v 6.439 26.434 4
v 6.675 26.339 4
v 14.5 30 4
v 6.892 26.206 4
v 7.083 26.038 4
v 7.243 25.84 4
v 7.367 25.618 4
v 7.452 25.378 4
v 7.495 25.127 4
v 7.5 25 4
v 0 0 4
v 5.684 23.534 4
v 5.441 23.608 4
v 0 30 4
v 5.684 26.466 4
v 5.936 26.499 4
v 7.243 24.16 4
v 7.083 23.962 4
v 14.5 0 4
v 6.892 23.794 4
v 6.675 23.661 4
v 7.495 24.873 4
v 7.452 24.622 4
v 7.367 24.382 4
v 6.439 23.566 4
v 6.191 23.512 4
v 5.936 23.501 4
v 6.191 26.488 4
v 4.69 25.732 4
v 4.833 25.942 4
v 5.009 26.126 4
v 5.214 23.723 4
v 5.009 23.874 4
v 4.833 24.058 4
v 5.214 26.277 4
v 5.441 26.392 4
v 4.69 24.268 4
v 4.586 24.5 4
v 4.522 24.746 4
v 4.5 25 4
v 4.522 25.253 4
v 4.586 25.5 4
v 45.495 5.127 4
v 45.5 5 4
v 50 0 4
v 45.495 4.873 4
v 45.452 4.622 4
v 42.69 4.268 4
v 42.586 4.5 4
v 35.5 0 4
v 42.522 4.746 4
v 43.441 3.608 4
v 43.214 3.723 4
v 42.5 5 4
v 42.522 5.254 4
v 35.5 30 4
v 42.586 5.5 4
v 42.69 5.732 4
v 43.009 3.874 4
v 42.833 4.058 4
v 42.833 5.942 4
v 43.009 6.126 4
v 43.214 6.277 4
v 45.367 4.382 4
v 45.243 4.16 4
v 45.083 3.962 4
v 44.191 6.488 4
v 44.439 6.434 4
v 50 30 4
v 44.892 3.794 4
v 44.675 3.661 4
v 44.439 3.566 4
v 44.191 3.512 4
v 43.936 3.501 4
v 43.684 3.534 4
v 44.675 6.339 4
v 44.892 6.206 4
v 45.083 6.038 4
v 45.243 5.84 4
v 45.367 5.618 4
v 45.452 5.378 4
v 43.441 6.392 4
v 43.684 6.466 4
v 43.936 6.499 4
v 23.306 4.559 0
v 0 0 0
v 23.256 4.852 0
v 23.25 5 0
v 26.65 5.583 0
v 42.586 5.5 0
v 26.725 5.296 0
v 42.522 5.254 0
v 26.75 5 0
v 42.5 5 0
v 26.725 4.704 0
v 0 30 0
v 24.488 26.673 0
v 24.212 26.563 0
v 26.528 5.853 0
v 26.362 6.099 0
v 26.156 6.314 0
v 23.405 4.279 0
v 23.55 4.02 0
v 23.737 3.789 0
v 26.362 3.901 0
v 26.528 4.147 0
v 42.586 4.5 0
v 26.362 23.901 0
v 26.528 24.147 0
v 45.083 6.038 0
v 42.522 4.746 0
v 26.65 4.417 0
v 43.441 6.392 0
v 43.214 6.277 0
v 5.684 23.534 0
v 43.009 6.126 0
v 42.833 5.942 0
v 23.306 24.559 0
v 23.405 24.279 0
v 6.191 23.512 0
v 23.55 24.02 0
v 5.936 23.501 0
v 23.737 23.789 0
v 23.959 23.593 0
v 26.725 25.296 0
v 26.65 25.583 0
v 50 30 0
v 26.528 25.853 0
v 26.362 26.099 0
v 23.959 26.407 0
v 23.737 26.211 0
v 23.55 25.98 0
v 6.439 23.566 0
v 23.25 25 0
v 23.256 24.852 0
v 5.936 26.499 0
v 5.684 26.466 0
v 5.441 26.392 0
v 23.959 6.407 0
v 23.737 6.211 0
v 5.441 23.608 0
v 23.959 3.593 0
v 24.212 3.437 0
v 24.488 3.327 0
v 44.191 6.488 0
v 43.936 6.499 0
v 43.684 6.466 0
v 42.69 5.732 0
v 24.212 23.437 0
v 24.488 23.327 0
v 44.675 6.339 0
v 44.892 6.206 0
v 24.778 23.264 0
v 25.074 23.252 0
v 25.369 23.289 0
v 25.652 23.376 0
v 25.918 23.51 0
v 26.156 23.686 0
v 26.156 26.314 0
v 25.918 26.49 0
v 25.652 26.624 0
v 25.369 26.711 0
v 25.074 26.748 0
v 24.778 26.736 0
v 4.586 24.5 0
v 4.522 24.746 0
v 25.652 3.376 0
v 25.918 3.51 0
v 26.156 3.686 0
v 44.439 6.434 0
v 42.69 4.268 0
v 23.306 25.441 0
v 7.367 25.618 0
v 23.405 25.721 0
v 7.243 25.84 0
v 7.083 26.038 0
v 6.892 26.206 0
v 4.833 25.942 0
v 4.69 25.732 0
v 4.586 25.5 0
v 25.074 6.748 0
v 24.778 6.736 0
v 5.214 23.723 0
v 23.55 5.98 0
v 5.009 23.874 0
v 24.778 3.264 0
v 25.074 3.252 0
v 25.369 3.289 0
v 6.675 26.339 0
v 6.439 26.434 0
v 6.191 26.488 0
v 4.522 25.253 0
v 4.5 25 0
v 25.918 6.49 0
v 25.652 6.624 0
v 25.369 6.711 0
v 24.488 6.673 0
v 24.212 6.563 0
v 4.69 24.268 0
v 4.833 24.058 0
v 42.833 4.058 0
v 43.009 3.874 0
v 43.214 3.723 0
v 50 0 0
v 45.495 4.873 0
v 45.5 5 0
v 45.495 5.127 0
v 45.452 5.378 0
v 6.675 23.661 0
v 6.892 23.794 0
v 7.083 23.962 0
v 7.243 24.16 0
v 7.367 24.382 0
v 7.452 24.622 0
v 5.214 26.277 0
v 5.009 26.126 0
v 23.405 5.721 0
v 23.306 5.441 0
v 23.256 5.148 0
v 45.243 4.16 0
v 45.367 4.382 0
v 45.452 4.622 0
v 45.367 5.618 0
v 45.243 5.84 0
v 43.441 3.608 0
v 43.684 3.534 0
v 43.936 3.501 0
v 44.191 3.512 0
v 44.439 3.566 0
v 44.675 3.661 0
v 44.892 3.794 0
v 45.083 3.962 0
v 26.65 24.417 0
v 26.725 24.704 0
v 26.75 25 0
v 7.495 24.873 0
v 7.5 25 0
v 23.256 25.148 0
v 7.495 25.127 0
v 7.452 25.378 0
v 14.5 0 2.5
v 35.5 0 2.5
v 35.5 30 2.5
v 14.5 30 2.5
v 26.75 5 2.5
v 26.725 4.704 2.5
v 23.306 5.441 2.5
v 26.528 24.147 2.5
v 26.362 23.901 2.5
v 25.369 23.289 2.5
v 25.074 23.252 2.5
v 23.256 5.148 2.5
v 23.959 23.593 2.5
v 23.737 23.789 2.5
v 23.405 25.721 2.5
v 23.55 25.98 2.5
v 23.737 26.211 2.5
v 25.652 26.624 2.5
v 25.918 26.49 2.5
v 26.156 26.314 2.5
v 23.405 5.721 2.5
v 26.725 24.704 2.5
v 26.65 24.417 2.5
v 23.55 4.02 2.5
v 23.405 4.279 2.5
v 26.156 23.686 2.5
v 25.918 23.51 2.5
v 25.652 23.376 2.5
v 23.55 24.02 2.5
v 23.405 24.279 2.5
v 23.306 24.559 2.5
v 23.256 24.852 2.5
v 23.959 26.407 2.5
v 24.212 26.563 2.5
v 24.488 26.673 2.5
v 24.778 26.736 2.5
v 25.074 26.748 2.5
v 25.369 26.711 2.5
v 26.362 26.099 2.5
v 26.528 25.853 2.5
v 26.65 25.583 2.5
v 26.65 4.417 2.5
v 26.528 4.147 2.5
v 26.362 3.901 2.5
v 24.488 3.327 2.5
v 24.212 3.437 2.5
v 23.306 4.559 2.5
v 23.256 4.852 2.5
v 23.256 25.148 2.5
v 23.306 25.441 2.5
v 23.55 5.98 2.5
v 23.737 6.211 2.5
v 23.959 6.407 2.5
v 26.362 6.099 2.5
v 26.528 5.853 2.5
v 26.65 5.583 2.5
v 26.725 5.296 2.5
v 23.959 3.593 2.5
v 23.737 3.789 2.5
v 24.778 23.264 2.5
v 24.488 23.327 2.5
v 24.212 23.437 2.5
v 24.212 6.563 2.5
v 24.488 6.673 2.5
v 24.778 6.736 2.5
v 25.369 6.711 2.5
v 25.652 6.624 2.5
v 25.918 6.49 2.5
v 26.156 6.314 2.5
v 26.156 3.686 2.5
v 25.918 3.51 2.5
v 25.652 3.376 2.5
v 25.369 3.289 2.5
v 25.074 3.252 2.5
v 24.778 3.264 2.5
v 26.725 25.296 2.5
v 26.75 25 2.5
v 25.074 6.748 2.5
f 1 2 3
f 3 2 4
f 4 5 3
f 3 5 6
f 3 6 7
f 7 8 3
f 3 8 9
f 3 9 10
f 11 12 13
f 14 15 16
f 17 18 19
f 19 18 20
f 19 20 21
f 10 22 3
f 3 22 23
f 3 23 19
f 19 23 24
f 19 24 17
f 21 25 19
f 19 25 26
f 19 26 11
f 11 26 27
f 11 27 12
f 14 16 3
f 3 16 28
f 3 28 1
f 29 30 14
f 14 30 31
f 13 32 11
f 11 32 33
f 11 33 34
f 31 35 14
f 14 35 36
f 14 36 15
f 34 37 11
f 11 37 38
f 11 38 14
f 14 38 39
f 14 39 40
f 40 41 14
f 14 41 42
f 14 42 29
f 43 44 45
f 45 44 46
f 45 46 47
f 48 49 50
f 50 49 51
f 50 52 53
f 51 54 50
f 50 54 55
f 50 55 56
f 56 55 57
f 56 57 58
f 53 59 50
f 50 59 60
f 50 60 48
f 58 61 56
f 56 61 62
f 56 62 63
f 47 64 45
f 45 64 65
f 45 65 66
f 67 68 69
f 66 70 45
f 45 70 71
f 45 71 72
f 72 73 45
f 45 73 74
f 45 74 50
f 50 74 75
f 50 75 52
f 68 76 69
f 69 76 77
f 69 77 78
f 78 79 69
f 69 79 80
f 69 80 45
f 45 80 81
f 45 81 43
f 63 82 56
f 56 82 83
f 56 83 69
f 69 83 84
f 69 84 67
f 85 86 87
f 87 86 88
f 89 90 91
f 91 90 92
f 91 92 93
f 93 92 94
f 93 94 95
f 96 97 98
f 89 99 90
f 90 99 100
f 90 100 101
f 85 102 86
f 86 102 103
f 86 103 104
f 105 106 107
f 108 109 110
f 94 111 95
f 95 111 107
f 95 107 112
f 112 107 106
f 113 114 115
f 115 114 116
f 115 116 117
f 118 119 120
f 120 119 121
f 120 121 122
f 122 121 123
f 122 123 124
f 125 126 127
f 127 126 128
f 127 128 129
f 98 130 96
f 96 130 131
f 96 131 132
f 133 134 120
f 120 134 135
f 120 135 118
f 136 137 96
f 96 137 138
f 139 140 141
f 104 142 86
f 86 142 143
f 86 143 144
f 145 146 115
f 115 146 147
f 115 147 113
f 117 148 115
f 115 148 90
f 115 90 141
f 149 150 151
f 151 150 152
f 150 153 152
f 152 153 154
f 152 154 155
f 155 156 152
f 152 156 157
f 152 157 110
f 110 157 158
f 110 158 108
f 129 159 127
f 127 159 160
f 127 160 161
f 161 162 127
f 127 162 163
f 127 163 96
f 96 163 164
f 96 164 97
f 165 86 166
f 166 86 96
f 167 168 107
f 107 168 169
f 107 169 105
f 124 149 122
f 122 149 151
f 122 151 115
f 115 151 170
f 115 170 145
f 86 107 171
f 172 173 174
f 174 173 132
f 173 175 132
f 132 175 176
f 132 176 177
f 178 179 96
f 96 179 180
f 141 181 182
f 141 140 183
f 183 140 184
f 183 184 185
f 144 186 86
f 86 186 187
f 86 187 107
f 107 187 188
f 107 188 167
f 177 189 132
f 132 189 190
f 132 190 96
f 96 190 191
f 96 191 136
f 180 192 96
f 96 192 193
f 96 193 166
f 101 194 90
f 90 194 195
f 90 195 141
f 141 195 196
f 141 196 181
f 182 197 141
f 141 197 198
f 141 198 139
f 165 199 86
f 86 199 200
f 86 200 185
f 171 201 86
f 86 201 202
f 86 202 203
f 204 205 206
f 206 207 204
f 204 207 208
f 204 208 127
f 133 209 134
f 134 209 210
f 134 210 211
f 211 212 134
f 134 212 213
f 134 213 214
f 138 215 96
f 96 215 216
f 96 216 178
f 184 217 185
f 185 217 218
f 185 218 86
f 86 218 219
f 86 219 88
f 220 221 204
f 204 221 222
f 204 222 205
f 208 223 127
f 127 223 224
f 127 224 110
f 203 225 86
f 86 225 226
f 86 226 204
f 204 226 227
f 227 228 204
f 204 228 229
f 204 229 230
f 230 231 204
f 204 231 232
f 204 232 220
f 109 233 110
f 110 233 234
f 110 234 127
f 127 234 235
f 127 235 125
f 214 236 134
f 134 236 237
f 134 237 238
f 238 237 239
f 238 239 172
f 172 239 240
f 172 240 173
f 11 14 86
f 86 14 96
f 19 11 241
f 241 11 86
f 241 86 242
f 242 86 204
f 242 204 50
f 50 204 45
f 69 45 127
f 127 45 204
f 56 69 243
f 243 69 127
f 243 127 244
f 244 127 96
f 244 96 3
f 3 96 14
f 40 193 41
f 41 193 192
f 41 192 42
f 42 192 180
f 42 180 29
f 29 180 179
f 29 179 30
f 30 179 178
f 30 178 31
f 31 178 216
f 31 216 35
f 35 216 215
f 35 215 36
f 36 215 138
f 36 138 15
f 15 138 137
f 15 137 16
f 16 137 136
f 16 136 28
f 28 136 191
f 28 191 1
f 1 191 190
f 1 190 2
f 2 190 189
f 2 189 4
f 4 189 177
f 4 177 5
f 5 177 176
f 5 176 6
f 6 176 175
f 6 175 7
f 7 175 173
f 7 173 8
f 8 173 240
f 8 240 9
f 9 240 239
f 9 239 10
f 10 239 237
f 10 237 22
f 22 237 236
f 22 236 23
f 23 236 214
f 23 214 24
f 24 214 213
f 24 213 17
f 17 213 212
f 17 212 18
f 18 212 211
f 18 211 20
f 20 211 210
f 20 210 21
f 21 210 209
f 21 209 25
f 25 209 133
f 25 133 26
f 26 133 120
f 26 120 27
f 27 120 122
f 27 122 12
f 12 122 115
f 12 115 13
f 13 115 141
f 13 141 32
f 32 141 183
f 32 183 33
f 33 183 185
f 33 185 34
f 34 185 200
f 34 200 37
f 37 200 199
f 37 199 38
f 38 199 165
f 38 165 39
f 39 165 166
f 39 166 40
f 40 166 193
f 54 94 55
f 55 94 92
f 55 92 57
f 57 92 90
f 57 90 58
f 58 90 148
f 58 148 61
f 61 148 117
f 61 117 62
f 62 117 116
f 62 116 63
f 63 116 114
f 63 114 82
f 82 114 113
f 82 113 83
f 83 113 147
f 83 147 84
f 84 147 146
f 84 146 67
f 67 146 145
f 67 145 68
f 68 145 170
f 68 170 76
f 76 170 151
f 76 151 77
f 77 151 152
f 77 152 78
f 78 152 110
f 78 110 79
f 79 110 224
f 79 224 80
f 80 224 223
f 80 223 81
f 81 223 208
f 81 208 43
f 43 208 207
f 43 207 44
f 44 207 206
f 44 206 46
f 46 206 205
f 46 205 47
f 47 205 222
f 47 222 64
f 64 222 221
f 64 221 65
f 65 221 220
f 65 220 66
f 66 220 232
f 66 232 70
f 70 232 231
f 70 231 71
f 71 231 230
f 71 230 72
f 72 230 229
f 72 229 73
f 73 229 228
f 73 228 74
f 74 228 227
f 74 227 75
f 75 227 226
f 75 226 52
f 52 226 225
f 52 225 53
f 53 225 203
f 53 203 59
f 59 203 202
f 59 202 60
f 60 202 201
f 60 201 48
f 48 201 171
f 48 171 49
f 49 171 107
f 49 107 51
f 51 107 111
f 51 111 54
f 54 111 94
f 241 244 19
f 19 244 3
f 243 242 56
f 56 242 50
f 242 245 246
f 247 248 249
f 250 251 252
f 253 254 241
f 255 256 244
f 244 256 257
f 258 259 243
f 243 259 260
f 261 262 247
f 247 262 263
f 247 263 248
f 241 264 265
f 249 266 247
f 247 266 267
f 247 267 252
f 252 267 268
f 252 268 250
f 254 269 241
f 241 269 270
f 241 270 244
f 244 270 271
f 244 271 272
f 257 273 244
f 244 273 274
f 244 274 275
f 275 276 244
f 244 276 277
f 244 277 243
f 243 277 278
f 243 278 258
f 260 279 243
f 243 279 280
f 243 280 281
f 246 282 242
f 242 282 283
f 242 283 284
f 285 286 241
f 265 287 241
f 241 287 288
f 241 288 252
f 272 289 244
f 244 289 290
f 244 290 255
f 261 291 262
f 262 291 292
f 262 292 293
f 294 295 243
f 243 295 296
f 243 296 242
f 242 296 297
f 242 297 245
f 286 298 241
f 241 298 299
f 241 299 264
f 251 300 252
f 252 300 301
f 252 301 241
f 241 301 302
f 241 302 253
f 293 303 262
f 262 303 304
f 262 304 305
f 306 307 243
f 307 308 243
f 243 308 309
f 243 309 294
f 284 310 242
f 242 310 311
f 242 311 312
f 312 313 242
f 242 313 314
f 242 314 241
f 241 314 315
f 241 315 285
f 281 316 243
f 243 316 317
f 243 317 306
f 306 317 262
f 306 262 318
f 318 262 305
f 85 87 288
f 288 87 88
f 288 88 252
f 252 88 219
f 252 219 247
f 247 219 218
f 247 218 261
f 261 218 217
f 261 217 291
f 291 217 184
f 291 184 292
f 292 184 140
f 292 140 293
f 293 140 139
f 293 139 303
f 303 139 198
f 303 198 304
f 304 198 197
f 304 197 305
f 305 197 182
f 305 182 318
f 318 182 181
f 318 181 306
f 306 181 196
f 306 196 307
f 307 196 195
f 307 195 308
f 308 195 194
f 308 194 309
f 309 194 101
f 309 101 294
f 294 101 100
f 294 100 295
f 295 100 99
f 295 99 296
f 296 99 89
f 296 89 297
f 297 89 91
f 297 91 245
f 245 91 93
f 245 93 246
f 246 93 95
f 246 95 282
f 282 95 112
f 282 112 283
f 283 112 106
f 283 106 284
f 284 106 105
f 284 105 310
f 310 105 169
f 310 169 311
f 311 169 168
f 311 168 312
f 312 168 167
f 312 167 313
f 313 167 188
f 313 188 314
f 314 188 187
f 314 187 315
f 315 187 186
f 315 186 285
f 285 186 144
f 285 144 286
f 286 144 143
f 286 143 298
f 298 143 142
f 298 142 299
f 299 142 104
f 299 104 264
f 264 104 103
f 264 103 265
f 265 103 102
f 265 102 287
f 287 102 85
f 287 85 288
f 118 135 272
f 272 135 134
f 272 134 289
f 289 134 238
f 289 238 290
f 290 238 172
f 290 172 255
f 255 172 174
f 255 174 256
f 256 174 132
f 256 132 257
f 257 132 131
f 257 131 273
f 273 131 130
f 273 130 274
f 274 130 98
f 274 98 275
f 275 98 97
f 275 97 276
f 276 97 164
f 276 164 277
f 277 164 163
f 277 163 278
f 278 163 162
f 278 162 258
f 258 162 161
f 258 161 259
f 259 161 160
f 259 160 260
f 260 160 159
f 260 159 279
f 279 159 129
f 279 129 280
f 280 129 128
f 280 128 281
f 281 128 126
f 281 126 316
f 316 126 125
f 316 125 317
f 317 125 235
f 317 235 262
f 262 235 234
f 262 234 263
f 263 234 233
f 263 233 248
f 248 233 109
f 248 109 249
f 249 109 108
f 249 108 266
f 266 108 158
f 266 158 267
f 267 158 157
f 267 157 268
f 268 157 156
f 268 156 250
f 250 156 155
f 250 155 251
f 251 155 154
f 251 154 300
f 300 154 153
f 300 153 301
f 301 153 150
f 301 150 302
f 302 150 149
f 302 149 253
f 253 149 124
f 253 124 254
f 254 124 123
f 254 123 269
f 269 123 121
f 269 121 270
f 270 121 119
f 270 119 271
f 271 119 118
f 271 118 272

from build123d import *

# Parameters (mm, degrees)
SKETCH1_W           = 50
SKETCH1_H           = 30
SKETCH1_R           = 1.5
BOSS_EXTRUDE1_DEPTH = 4
SKETCH2_W           = 21
SKETCH2_H           = 30
CUT_EXTRUDE1_DEPTH  = 1.5
SKETCH3_R           = 1.75
CUT_EXTRUDE2_DEPTH  = 5


with BuildPart() as part:
    # Sketch1 → Boss-Extrude1 (new body)
    with BuildSketch(Plane.XY):
        with Locations((25, 15)):
            Rectangle(SKETCH1_W, SKETCH1_H)
        with Locations((6, 25)):
            Circle(SKETCH1_R, mode=Mode.SUBTRACT)
        with Locations((44, 5)):
            Circle(SKETCH1_R, mode=Mode.SUBTRACT)
    extrude(amount=BOSS_EXTRUDE1_DEPTH)

    # Sketch2 → Cut-Extrude1 (cut)
    with BuildSketch(Plane.XY.offset(4)):
        with Locations((25, 15)):
            Rectangle(SKETCH2_W, SKETCH2_H)
    extrude(amount=-CUT_EXTRUDE1_DEPTH, mode=Mode.SUBTRACT)

    # Sketch3 → Cut-Extrude2 (cut)
    with BuildSketch(Plane.XY.offset(2.5)):
        with Locations((25, 25)):
            Circle(SKETCH3_R)
        with Locations((25, 5)):
            Circle(SKETCH3_R)
    extrude(amount=-CUT_EXTRUDE2_DEPTH, mode=Mode.SUBTRACT)


solid = part.part
